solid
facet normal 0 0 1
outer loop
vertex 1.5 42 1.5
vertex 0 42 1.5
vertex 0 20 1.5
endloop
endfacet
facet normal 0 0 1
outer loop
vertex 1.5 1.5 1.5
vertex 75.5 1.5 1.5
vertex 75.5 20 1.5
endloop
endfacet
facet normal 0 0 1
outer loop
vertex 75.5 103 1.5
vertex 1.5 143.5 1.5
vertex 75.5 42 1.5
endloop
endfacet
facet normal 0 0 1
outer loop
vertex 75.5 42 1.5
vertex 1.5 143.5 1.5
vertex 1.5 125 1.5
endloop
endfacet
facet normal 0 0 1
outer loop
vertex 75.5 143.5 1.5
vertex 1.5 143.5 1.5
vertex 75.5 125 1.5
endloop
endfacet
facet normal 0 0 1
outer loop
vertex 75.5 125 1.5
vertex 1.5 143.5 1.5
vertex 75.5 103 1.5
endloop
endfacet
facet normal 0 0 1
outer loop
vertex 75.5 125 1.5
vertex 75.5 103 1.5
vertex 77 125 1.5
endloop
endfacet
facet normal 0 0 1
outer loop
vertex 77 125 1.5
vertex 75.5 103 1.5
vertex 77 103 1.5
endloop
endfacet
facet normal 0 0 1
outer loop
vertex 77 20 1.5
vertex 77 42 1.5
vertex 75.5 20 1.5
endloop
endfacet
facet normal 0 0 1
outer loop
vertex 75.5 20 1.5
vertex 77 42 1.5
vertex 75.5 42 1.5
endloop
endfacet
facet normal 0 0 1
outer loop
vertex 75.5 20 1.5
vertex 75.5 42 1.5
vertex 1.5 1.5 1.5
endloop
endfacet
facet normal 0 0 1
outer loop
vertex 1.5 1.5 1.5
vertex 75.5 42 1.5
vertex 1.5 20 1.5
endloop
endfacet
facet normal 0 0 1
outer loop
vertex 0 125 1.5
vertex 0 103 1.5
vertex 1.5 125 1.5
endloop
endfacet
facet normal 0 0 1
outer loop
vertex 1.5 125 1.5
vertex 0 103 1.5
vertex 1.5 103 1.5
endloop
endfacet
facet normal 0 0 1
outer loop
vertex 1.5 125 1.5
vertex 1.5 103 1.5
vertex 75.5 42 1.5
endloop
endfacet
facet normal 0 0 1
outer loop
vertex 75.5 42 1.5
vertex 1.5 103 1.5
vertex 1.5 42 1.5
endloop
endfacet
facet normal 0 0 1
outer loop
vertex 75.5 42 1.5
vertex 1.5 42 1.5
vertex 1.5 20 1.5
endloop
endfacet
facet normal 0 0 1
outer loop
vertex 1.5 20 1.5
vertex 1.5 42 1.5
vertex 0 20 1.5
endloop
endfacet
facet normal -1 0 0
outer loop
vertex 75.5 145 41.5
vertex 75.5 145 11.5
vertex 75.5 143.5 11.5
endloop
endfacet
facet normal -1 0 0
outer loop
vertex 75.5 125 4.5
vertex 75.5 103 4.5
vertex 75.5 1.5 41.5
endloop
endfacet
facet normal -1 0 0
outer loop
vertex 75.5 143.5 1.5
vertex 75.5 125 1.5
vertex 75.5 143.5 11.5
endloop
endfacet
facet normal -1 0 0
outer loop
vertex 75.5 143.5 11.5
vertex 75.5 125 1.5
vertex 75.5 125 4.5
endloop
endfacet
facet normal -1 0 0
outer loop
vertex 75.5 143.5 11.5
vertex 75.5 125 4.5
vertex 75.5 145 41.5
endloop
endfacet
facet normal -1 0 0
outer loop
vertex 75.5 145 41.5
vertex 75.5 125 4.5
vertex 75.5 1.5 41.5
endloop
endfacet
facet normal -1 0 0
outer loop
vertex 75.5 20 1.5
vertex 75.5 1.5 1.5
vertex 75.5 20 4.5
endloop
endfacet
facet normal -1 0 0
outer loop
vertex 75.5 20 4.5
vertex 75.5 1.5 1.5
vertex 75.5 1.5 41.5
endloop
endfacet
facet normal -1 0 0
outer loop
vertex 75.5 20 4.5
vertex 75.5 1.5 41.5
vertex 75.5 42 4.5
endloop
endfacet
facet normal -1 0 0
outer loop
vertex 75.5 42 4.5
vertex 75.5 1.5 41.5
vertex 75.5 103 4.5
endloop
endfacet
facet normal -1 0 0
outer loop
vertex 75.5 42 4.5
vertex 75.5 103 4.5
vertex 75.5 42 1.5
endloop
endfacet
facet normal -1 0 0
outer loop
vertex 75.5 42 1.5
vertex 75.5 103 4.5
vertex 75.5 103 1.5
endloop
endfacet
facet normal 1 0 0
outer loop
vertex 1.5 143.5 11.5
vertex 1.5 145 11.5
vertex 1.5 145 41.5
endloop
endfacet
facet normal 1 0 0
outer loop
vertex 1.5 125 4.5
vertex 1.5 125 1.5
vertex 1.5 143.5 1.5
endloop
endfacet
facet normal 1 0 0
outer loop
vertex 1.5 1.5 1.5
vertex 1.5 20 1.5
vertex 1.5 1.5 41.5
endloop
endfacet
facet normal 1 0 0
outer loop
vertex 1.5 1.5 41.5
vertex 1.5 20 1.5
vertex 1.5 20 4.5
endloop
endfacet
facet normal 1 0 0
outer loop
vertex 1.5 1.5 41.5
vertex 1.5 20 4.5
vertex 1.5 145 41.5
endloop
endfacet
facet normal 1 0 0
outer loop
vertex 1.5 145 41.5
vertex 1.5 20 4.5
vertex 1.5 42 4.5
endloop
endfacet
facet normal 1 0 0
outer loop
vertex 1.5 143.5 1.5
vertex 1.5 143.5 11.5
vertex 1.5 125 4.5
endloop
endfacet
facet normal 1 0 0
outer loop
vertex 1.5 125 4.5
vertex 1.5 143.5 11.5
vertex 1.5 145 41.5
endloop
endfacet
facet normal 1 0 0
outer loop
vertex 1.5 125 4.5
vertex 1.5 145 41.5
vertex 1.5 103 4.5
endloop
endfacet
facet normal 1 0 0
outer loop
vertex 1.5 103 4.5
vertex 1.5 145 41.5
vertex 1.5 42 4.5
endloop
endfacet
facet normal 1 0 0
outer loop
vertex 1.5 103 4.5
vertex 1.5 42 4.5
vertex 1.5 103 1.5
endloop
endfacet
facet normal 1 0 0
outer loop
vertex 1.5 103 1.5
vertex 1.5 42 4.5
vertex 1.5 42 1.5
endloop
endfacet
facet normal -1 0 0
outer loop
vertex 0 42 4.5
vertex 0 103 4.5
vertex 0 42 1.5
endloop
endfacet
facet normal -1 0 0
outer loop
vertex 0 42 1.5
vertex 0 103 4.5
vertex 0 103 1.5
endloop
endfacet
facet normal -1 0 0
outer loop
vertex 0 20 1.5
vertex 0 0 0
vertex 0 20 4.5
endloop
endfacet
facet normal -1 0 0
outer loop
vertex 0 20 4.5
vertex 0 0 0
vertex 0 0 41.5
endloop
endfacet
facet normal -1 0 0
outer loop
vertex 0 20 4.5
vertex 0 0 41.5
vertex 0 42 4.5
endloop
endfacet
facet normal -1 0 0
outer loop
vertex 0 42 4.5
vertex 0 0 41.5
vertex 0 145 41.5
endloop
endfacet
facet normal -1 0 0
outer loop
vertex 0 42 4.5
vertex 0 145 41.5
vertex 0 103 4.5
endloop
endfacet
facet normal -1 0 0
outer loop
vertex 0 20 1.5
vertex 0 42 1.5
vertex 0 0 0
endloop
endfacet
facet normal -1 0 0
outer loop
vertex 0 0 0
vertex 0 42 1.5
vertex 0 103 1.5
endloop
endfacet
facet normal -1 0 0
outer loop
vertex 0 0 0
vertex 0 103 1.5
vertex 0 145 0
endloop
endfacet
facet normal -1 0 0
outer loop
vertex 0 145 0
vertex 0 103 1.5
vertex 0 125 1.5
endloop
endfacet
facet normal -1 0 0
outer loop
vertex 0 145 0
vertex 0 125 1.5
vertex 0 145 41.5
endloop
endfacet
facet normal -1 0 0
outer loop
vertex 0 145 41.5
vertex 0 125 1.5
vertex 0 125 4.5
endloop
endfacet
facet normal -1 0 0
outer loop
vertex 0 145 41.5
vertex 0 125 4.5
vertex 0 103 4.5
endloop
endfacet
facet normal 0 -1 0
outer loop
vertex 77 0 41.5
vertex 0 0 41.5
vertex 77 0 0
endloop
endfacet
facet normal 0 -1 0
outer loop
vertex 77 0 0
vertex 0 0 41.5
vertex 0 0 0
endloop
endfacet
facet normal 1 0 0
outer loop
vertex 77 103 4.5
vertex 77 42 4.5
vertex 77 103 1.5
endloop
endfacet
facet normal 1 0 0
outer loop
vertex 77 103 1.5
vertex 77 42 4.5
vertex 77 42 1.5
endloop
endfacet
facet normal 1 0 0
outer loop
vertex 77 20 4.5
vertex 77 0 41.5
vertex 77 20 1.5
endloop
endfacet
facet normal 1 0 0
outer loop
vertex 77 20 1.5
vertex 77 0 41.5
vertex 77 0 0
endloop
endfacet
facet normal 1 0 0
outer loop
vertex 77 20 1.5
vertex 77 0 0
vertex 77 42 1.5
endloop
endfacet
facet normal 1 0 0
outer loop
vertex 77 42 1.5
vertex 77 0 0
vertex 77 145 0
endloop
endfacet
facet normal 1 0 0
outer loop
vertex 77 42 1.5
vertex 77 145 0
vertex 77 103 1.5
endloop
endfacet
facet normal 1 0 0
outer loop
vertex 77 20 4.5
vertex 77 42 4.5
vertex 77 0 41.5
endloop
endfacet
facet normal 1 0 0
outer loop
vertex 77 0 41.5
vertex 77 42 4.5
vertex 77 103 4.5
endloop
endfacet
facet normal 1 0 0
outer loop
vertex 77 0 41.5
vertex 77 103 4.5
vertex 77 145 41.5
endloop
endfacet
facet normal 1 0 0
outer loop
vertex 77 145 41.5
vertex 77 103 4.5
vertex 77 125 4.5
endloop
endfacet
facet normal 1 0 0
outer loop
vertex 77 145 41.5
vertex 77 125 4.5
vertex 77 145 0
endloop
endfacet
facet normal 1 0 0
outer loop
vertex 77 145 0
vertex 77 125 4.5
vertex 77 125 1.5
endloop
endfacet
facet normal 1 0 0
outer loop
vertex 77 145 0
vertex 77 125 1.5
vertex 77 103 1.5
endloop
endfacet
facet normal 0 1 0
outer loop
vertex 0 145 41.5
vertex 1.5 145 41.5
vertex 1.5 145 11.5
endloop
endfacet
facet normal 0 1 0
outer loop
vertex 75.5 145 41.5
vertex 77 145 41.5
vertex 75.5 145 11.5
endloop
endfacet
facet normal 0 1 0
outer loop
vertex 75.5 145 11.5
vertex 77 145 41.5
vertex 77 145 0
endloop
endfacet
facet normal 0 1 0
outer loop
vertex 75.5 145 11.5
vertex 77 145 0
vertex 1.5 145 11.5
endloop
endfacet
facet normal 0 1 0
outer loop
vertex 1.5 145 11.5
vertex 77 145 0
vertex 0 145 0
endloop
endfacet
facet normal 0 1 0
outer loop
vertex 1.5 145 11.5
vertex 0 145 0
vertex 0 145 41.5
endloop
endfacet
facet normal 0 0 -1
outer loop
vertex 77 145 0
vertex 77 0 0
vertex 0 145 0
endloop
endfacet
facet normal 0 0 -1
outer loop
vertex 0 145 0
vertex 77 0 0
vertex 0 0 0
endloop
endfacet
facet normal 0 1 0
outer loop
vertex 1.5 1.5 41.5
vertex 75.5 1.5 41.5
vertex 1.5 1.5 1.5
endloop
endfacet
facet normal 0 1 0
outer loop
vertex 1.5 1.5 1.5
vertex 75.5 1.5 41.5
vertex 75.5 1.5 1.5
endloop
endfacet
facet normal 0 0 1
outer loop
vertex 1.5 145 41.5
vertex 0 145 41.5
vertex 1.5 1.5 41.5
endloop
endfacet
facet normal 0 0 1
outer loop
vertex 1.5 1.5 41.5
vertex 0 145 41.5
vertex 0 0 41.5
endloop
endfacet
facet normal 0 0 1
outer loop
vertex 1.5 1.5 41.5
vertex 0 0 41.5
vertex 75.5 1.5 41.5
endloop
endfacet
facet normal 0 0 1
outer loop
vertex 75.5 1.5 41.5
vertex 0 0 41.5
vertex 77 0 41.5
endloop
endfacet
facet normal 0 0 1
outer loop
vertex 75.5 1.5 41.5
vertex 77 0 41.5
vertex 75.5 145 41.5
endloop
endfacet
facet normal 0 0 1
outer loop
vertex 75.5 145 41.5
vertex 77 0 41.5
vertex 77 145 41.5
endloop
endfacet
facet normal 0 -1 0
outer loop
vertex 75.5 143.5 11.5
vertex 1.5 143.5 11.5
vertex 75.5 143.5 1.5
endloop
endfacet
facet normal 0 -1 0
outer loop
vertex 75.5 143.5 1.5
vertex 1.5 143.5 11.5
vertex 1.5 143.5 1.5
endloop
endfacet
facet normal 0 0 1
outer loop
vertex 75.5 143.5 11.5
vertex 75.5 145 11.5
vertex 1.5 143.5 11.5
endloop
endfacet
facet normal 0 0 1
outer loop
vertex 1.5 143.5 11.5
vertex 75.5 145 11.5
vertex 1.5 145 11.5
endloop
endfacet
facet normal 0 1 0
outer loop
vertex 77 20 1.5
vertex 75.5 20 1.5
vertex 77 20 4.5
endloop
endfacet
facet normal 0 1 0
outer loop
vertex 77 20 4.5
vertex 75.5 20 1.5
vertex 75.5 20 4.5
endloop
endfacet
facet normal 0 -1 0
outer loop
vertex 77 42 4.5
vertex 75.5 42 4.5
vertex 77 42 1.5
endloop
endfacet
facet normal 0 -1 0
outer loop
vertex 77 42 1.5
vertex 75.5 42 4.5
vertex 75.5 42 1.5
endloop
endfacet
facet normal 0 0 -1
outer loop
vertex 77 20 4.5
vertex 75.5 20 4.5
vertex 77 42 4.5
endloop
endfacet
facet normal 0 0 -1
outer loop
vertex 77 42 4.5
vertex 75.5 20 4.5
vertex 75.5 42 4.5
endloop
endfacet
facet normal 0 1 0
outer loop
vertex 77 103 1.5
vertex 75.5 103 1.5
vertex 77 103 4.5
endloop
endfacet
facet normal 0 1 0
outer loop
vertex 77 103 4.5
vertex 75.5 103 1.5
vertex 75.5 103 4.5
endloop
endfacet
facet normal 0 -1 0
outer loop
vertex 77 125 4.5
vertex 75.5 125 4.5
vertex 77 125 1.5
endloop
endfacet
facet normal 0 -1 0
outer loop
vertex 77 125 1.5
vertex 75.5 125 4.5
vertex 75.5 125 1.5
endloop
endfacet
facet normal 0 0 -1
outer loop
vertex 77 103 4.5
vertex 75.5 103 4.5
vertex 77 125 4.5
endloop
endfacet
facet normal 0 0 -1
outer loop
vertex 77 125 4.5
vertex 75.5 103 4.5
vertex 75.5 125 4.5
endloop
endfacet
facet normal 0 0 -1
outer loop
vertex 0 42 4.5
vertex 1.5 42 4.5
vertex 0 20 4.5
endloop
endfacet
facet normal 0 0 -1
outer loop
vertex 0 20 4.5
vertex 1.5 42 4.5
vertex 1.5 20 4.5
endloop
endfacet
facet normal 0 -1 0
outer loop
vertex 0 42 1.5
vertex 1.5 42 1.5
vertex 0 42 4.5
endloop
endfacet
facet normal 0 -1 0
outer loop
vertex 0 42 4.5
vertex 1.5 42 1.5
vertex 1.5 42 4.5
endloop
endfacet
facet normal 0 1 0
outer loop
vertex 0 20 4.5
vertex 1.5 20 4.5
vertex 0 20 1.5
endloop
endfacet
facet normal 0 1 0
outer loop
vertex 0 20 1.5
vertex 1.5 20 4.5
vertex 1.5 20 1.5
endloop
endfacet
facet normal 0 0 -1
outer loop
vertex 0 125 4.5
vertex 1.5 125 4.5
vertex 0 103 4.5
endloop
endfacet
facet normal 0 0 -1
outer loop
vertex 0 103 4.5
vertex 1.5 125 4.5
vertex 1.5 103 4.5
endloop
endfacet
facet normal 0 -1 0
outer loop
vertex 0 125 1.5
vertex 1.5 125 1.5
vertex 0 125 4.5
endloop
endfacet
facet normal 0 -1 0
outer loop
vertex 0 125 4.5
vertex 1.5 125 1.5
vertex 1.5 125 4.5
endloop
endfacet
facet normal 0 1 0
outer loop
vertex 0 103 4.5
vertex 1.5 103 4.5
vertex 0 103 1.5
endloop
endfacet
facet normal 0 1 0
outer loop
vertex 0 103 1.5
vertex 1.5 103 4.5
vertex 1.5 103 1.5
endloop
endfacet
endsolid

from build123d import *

# Parameters (mm, degrees)
SKETCH_1_W          = 77
SKETCH_1_H          = 145
EXTRUDE_1_DEPTH     = 1.5
EXTRUDE_2_DEPTH     = 40
SKETCH_3_W          = 74
SKETCH_3_H          = 1.5
EXTRUDE_3_DEPTH     = 10
SKETCH_4_W          = 3
SKETCH_4_H          = 22
CUT_EXTRUDE_1_DEPTH = 100


with BuildPart() as part:
    # Эскиз1 → Бобышка-Вытянуть1 (new body)
    with BuildSketch(Plane.XY):
        with Locations((38.5, 72.5)):
            Rectangle(SKETCH_1_W, SKETCH_1_H)
    extrude(amount=EXTRUDE_1_DEPTH)

    # Эскиз2 → Бобышка-Вытянуть2 (add)
    with BuildSketch(Plane.XY.offset(1.5)):
        Polygon((1.5, 145), (1.5, 1.5), (75.5, 1.5), (75.5, 145), (77, 145), (77, 0), (0, 0), (0, 145), align=None)
    extrude(amount=EXTRUDE_2_DEPTH)

    # Эскиз3 → Бобышка-Вытянуть3 (add)
    with BuildSketch(Plane.XY.offset(1.5)):
        with Locations((38.5, 144.25)):
            Rectangle(SKETCH_3_W, SKETCH_3_H)
    extrude(amount=EXTRUDE_3_DEPTH)

    # Эскиз4 → Вырез-Вытянуть1 (cut)
    with BuildSketch(Plane(origin=(77, 0, 0), x_dir=(0, 0, -1), z_dir=(1, 0, 0))):
        with Locations((-3, 114)):
            Rectangle(SKETCH_4_W, SKETCH_4_H)
        with Locations((-3, 31)):
            Rectangle(SKETCH_4_W, SKETCH_4_H)
    extrude(amount=-CUT_EXTRUDE_1_DEPTH, mode=Mode.SUBTRACT)


solid = part.part
